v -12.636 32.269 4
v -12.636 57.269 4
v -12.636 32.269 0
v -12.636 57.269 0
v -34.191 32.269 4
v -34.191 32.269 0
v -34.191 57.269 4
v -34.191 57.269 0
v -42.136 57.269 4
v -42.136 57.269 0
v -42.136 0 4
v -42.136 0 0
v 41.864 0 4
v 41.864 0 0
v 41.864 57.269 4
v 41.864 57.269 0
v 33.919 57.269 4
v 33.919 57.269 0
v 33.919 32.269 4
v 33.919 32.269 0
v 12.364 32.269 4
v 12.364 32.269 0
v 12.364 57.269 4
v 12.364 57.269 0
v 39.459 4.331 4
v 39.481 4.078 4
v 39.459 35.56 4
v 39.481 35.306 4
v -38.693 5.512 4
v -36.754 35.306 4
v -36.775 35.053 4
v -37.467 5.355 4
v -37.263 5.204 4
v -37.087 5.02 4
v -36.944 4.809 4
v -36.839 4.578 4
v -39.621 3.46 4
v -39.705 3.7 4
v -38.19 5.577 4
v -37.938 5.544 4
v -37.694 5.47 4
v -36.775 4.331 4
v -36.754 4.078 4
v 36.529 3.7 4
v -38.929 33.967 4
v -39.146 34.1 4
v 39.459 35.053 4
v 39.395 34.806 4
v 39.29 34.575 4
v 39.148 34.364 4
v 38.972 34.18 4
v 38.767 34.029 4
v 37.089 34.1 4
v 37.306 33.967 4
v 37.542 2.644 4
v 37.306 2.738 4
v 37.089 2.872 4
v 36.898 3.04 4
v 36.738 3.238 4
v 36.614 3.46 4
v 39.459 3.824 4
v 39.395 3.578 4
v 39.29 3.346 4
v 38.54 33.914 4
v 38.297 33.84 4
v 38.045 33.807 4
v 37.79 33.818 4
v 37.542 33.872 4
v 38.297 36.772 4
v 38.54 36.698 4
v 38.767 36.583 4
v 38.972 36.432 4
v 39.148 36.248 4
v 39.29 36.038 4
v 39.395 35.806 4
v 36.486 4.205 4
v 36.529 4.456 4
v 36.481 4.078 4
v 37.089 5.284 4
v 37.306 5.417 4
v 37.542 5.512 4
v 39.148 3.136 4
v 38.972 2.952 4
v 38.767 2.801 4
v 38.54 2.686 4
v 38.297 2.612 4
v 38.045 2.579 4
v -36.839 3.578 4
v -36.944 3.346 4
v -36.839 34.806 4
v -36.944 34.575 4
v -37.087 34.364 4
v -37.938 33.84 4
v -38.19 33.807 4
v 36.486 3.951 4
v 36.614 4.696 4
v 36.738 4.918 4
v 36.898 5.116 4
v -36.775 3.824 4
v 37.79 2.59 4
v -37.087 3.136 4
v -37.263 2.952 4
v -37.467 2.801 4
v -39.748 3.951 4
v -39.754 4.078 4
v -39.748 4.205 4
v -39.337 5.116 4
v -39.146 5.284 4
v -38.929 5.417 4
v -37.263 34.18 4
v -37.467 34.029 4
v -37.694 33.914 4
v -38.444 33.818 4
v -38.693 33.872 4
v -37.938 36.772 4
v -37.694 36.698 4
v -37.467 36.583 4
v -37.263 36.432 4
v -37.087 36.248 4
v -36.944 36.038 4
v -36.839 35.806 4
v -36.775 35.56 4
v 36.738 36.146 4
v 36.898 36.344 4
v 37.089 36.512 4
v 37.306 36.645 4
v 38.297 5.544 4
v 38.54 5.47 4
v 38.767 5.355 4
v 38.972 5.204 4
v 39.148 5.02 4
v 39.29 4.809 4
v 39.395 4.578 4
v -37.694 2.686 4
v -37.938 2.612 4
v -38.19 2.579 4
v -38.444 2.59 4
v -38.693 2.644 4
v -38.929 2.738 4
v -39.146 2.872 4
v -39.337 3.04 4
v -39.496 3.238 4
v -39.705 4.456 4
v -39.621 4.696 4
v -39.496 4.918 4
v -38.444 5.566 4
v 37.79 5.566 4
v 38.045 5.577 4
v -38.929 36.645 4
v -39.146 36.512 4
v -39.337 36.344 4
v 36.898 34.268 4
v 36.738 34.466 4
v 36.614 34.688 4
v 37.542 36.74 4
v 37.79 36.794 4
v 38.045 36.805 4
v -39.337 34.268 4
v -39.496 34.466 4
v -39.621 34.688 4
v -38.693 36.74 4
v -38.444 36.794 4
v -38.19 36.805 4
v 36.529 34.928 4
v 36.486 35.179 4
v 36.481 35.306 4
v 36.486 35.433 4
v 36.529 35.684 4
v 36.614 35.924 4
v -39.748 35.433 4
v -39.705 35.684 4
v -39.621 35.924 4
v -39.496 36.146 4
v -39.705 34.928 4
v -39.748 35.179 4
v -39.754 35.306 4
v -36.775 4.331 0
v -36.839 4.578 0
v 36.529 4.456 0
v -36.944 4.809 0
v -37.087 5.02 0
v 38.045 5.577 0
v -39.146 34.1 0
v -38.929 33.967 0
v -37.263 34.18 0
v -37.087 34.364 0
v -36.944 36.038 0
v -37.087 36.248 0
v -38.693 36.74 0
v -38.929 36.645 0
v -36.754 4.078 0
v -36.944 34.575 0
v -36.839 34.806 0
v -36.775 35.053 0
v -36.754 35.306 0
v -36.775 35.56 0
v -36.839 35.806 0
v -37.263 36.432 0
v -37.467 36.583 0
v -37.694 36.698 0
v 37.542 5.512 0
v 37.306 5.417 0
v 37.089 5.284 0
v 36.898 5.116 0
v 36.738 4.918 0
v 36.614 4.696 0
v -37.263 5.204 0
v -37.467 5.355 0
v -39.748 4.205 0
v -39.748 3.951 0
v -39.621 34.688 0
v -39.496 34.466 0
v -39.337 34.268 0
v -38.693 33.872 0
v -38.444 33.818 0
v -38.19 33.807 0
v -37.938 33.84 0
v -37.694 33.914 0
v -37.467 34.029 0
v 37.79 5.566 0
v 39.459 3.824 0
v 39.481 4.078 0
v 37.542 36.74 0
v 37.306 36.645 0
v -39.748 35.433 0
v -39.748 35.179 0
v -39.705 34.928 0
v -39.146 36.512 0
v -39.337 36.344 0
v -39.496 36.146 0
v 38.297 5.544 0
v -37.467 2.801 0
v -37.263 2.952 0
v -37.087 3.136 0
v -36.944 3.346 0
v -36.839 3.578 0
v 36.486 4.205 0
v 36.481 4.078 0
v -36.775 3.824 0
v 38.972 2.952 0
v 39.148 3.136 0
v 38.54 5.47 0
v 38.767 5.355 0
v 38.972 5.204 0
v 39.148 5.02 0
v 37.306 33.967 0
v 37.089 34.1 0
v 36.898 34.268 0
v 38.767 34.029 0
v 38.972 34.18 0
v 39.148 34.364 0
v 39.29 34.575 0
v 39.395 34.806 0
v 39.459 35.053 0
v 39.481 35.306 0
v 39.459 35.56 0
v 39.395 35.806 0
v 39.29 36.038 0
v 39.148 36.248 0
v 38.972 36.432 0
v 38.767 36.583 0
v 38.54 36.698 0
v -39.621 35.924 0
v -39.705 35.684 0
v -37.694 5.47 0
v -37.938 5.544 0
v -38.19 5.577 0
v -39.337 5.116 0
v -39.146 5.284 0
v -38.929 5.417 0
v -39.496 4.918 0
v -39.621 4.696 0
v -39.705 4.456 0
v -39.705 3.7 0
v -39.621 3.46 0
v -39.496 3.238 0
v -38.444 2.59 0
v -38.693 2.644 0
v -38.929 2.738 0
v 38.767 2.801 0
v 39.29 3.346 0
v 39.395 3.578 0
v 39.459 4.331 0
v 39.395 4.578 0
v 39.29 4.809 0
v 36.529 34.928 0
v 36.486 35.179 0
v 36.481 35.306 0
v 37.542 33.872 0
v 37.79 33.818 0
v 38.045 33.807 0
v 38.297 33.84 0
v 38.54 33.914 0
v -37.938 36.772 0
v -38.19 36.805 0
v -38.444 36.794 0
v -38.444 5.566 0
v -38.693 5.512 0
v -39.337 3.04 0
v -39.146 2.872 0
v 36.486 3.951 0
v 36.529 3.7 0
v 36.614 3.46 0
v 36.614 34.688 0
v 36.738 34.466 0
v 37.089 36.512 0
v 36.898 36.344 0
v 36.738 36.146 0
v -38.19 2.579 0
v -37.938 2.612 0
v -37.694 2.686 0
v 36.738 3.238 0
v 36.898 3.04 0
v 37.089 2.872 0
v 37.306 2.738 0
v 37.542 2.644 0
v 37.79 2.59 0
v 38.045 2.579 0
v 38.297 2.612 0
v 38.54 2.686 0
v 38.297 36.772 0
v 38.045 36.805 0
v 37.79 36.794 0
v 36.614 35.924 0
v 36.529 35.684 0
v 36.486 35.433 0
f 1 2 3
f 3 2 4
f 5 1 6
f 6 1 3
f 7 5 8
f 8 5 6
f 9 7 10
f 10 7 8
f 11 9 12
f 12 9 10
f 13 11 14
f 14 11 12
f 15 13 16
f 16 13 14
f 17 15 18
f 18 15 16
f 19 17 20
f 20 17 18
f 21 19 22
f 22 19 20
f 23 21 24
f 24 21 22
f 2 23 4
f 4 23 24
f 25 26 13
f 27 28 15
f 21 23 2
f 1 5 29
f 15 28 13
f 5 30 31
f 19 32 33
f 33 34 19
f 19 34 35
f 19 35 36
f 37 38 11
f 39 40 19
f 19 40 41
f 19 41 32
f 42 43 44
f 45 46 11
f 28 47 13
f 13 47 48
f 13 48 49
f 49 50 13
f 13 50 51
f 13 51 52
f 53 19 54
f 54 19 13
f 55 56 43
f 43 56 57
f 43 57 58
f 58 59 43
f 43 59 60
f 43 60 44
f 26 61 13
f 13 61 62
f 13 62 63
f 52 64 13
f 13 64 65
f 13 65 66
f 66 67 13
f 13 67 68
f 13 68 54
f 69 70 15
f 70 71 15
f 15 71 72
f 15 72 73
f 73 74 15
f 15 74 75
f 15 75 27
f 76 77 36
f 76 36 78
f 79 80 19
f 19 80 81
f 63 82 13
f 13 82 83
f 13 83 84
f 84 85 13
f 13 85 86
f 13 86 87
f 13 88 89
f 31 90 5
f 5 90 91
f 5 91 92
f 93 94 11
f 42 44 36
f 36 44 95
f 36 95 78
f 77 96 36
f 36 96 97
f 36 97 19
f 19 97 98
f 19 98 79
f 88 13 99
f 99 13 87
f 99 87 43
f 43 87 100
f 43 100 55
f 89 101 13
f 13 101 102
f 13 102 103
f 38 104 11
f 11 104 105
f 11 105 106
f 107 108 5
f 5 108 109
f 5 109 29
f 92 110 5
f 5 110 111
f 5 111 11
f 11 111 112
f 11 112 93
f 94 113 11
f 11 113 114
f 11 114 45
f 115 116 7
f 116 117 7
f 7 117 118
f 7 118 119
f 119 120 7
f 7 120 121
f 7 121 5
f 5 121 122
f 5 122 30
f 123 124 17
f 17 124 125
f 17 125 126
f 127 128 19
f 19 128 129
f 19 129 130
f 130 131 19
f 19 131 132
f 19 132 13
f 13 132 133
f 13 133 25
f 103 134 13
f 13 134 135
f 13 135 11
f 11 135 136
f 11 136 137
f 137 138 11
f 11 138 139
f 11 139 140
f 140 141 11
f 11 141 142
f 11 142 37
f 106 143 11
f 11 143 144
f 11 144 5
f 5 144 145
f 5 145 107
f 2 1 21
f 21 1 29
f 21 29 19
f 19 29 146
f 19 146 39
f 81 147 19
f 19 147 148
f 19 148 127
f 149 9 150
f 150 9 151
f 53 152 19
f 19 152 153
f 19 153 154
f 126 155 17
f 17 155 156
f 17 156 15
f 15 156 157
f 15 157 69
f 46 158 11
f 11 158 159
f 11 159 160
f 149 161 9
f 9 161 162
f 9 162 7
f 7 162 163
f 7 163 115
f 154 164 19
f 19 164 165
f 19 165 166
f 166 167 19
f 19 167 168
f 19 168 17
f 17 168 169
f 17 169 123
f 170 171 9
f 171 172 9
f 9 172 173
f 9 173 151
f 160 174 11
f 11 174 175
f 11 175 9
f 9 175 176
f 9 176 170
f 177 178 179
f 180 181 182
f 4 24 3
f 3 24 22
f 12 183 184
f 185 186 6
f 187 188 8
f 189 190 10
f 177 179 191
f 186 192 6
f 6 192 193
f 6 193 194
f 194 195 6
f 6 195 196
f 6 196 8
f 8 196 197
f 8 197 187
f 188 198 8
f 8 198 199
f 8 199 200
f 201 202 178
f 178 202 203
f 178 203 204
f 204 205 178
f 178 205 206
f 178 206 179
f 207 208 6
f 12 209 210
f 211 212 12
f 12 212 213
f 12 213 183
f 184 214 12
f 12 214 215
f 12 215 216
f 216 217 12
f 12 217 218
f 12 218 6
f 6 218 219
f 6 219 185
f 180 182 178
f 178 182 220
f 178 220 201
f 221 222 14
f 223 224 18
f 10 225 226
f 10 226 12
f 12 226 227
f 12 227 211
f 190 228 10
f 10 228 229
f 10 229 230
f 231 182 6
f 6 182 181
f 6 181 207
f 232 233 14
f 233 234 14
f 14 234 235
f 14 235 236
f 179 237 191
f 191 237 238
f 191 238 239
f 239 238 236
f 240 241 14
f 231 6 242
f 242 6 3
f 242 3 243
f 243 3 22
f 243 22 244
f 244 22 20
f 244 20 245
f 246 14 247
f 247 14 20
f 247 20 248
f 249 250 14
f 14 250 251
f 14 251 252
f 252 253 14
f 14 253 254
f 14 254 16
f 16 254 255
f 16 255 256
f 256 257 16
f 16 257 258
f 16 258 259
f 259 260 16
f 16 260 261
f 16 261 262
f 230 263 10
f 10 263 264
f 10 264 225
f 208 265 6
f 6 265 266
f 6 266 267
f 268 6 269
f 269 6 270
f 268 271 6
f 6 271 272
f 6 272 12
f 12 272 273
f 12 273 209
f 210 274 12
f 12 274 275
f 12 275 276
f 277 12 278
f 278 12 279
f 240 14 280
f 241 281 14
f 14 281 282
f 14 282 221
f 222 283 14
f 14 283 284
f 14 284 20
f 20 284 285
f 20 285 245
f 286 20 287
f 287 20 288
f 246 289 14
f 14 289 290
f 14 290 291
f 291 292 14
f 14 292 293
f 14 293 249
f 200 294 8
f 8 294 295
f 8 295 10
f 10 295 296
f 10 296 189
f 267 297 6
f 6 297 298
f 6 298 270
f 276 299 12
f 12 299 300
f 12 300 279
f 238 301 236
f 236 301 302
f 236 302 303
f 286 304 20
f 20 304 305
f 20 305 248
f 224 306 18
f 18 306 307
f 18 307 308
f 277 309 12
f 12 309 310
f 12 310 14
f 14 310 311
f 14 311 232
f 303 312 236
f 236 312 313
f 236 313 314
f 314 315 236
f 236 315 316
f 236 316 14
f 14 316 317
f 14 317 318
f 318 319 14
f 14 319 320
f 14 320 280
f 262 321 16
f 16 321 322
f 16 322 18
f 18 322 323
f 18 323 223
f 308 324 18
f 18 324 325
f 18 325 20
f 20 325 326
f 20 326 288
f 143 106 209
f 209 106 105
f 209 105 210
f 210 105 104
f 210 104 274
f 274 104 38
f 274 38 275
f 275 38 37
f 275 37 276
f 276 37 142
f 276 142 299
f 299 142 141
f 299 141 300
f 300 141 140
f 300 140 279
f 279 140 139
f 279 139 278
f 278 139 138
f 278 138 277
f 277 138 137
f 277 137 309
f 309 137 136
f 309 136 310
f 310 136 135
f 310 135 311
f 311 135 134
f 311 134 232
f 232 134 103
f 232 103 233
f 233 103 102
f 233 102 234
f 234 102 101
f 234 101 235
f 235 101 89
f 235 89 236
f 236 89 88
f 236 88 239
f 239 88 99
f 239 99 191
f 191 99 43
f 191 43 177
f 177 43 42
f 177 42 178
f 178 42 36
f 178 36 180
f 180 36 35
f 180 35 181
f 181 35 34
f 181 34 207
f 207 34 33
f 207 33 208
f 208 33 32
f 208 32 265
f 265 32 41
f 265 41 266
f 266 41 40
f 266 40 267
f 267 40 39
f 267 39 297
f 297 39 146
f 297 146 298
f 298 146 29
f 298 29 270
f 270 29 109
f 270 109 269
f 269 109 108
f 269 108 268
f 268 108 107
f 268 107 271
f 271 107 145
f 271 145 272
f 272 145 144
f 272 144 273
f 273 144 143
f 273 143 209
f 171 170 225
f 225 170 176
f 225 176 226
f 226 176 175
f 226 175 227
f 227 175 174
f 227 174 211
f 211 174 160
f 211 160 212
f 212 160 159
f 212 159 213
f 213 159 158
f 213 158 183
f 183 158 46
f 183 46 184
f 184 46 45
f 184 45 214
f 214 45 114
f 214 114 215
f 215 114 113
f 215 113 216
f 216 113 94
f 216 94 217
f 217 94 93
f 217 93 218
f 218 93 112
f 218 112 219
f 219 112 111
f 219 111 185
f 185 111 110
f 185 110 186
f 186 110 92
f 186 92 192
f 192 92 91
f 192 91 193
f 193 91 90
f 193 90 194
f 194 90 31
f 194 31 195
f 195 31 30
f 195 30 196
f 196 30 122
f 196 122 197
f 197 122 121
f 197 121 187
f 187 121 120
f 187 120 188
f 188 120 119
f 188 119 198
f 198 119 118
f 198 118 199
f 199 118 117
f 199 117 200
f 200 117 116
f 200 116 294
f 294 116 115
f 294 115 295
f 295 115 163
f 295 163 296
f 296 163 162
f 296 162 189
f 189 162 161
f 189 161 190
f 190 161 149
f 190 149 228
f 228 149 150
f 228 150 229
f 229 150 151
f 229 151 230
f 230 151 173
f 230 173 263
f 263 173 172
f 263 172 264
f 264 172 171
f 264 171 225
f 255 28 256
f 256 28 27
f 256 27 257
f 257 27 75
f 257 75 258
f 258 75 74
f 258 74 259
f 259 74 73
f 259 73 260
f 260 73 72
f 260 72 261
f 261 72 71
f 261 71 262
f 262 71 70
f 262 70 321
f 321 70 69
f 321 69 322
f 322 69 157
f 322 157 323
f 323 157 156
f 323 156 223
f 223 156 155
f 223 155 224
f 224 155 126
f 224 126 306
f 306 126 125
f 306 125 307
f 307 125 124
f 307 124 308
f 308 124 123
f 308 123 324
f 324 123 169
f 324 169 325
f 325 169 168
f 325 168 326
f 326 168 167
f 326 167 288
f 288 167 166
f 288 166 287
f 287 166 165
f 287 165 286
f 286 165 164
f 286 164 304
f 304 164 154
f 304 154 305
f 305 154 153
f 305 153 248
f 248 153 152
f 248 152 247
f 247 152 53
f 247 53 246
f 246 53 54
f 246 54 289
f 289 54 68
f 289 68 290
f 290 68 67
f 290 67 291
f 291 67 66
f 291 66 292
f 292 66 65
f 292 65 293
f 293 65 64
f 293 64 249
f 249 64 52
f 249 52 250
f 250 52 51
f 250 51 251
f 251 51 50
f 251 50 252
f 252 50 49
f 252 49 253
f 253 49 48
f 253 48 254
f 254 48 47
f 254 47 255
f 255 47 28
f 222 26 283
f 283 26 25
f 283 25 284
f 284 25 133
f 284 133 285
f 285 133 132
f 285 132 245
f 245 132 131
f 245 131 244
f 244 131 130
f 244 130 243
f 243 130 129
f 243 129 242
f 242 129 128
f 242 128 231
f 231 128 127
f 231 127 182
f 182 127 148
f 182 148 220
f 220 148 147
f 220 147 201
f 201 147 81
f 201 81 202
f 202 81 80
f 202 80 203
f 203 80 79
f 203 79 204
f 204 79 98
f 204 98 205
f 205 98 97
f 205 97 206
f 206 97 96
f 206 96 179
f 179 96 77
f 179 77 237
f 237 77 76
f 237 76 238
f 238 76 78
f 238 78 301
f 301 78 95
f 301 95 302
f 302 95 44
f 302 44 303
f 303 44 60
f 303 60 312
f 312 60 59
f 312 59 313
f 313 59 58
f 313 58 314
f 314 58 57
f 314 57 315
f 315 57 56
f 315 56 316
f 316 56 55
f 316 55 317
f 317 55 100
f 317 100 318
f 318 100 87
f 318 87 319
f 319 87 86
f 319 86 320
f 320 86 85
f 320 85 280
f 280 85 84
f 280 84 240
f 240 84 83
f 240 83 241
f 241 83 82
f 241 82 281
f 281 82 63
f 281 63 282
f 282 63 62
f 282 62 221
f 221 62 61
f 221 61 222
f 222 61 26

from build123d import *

# Parameters (mm, degrees)
EXTRUDE_1_DEPTH          = 4
CUT_EXTRUDE_1_DEPTH      = 72.212602073
CUT_EXTRUDE_1_DEPTH_BACK = 72.212602073
SKETCH_7_R               = 1.5


with BuildPart() as part:
    # 草图1 → 凸台-拉伸1 (new body)
    with BuildSketch(Plane.XY):
        Polygon((-42.136394103, 0), (41.863605897, 0), (41.863605897, 57.269180071), (33.918605897, 57.269180071), (33.918605897, 32.269180071), (12.363605897, 32.269180071), (12.363605897, 57.269180071), (-12.636394103, 57.269180071), (-12.636394103, 32.269180071), (-34.191394103, 32.269180071), (-34.191394103, 57.269180071), (-42.136394103, 57.269180071), align=None)
    extrude(amount=EXTRUDE_1_DEPTH)

    # 草图7 → 切除-拉伸1 (cut, two sides: drawn at the far end of the back side and taken through both)
    with BuildSketch(Plane.XY.offset(4).offset(-CUT_EXTRUDE_1_DEPTH_BACK)):
        with Locations((-38.253699842, 4.077877428)):
            Circle(SKETCH_7_R)
        with Locations((-38.253699842, 35.306046983)):
            Circle(SKETCH_7_R)
        with Locations(Location((37.980911635, 35.306046983, 0), (0, 0, 180))):
            Circle(SKETCH_7_R)
        with Locations(Location((37.980911635, 4.077877428, 0), (0, 0, 180))):
            Circle(SKETCH_7_R)
    extrude(amount=CUT_EXTRUDE_1_DEPTH + CUT_EXTRUDE_1_DEPTH_BACK, mode=Mode.SUBTRACT)


solid = part.part
